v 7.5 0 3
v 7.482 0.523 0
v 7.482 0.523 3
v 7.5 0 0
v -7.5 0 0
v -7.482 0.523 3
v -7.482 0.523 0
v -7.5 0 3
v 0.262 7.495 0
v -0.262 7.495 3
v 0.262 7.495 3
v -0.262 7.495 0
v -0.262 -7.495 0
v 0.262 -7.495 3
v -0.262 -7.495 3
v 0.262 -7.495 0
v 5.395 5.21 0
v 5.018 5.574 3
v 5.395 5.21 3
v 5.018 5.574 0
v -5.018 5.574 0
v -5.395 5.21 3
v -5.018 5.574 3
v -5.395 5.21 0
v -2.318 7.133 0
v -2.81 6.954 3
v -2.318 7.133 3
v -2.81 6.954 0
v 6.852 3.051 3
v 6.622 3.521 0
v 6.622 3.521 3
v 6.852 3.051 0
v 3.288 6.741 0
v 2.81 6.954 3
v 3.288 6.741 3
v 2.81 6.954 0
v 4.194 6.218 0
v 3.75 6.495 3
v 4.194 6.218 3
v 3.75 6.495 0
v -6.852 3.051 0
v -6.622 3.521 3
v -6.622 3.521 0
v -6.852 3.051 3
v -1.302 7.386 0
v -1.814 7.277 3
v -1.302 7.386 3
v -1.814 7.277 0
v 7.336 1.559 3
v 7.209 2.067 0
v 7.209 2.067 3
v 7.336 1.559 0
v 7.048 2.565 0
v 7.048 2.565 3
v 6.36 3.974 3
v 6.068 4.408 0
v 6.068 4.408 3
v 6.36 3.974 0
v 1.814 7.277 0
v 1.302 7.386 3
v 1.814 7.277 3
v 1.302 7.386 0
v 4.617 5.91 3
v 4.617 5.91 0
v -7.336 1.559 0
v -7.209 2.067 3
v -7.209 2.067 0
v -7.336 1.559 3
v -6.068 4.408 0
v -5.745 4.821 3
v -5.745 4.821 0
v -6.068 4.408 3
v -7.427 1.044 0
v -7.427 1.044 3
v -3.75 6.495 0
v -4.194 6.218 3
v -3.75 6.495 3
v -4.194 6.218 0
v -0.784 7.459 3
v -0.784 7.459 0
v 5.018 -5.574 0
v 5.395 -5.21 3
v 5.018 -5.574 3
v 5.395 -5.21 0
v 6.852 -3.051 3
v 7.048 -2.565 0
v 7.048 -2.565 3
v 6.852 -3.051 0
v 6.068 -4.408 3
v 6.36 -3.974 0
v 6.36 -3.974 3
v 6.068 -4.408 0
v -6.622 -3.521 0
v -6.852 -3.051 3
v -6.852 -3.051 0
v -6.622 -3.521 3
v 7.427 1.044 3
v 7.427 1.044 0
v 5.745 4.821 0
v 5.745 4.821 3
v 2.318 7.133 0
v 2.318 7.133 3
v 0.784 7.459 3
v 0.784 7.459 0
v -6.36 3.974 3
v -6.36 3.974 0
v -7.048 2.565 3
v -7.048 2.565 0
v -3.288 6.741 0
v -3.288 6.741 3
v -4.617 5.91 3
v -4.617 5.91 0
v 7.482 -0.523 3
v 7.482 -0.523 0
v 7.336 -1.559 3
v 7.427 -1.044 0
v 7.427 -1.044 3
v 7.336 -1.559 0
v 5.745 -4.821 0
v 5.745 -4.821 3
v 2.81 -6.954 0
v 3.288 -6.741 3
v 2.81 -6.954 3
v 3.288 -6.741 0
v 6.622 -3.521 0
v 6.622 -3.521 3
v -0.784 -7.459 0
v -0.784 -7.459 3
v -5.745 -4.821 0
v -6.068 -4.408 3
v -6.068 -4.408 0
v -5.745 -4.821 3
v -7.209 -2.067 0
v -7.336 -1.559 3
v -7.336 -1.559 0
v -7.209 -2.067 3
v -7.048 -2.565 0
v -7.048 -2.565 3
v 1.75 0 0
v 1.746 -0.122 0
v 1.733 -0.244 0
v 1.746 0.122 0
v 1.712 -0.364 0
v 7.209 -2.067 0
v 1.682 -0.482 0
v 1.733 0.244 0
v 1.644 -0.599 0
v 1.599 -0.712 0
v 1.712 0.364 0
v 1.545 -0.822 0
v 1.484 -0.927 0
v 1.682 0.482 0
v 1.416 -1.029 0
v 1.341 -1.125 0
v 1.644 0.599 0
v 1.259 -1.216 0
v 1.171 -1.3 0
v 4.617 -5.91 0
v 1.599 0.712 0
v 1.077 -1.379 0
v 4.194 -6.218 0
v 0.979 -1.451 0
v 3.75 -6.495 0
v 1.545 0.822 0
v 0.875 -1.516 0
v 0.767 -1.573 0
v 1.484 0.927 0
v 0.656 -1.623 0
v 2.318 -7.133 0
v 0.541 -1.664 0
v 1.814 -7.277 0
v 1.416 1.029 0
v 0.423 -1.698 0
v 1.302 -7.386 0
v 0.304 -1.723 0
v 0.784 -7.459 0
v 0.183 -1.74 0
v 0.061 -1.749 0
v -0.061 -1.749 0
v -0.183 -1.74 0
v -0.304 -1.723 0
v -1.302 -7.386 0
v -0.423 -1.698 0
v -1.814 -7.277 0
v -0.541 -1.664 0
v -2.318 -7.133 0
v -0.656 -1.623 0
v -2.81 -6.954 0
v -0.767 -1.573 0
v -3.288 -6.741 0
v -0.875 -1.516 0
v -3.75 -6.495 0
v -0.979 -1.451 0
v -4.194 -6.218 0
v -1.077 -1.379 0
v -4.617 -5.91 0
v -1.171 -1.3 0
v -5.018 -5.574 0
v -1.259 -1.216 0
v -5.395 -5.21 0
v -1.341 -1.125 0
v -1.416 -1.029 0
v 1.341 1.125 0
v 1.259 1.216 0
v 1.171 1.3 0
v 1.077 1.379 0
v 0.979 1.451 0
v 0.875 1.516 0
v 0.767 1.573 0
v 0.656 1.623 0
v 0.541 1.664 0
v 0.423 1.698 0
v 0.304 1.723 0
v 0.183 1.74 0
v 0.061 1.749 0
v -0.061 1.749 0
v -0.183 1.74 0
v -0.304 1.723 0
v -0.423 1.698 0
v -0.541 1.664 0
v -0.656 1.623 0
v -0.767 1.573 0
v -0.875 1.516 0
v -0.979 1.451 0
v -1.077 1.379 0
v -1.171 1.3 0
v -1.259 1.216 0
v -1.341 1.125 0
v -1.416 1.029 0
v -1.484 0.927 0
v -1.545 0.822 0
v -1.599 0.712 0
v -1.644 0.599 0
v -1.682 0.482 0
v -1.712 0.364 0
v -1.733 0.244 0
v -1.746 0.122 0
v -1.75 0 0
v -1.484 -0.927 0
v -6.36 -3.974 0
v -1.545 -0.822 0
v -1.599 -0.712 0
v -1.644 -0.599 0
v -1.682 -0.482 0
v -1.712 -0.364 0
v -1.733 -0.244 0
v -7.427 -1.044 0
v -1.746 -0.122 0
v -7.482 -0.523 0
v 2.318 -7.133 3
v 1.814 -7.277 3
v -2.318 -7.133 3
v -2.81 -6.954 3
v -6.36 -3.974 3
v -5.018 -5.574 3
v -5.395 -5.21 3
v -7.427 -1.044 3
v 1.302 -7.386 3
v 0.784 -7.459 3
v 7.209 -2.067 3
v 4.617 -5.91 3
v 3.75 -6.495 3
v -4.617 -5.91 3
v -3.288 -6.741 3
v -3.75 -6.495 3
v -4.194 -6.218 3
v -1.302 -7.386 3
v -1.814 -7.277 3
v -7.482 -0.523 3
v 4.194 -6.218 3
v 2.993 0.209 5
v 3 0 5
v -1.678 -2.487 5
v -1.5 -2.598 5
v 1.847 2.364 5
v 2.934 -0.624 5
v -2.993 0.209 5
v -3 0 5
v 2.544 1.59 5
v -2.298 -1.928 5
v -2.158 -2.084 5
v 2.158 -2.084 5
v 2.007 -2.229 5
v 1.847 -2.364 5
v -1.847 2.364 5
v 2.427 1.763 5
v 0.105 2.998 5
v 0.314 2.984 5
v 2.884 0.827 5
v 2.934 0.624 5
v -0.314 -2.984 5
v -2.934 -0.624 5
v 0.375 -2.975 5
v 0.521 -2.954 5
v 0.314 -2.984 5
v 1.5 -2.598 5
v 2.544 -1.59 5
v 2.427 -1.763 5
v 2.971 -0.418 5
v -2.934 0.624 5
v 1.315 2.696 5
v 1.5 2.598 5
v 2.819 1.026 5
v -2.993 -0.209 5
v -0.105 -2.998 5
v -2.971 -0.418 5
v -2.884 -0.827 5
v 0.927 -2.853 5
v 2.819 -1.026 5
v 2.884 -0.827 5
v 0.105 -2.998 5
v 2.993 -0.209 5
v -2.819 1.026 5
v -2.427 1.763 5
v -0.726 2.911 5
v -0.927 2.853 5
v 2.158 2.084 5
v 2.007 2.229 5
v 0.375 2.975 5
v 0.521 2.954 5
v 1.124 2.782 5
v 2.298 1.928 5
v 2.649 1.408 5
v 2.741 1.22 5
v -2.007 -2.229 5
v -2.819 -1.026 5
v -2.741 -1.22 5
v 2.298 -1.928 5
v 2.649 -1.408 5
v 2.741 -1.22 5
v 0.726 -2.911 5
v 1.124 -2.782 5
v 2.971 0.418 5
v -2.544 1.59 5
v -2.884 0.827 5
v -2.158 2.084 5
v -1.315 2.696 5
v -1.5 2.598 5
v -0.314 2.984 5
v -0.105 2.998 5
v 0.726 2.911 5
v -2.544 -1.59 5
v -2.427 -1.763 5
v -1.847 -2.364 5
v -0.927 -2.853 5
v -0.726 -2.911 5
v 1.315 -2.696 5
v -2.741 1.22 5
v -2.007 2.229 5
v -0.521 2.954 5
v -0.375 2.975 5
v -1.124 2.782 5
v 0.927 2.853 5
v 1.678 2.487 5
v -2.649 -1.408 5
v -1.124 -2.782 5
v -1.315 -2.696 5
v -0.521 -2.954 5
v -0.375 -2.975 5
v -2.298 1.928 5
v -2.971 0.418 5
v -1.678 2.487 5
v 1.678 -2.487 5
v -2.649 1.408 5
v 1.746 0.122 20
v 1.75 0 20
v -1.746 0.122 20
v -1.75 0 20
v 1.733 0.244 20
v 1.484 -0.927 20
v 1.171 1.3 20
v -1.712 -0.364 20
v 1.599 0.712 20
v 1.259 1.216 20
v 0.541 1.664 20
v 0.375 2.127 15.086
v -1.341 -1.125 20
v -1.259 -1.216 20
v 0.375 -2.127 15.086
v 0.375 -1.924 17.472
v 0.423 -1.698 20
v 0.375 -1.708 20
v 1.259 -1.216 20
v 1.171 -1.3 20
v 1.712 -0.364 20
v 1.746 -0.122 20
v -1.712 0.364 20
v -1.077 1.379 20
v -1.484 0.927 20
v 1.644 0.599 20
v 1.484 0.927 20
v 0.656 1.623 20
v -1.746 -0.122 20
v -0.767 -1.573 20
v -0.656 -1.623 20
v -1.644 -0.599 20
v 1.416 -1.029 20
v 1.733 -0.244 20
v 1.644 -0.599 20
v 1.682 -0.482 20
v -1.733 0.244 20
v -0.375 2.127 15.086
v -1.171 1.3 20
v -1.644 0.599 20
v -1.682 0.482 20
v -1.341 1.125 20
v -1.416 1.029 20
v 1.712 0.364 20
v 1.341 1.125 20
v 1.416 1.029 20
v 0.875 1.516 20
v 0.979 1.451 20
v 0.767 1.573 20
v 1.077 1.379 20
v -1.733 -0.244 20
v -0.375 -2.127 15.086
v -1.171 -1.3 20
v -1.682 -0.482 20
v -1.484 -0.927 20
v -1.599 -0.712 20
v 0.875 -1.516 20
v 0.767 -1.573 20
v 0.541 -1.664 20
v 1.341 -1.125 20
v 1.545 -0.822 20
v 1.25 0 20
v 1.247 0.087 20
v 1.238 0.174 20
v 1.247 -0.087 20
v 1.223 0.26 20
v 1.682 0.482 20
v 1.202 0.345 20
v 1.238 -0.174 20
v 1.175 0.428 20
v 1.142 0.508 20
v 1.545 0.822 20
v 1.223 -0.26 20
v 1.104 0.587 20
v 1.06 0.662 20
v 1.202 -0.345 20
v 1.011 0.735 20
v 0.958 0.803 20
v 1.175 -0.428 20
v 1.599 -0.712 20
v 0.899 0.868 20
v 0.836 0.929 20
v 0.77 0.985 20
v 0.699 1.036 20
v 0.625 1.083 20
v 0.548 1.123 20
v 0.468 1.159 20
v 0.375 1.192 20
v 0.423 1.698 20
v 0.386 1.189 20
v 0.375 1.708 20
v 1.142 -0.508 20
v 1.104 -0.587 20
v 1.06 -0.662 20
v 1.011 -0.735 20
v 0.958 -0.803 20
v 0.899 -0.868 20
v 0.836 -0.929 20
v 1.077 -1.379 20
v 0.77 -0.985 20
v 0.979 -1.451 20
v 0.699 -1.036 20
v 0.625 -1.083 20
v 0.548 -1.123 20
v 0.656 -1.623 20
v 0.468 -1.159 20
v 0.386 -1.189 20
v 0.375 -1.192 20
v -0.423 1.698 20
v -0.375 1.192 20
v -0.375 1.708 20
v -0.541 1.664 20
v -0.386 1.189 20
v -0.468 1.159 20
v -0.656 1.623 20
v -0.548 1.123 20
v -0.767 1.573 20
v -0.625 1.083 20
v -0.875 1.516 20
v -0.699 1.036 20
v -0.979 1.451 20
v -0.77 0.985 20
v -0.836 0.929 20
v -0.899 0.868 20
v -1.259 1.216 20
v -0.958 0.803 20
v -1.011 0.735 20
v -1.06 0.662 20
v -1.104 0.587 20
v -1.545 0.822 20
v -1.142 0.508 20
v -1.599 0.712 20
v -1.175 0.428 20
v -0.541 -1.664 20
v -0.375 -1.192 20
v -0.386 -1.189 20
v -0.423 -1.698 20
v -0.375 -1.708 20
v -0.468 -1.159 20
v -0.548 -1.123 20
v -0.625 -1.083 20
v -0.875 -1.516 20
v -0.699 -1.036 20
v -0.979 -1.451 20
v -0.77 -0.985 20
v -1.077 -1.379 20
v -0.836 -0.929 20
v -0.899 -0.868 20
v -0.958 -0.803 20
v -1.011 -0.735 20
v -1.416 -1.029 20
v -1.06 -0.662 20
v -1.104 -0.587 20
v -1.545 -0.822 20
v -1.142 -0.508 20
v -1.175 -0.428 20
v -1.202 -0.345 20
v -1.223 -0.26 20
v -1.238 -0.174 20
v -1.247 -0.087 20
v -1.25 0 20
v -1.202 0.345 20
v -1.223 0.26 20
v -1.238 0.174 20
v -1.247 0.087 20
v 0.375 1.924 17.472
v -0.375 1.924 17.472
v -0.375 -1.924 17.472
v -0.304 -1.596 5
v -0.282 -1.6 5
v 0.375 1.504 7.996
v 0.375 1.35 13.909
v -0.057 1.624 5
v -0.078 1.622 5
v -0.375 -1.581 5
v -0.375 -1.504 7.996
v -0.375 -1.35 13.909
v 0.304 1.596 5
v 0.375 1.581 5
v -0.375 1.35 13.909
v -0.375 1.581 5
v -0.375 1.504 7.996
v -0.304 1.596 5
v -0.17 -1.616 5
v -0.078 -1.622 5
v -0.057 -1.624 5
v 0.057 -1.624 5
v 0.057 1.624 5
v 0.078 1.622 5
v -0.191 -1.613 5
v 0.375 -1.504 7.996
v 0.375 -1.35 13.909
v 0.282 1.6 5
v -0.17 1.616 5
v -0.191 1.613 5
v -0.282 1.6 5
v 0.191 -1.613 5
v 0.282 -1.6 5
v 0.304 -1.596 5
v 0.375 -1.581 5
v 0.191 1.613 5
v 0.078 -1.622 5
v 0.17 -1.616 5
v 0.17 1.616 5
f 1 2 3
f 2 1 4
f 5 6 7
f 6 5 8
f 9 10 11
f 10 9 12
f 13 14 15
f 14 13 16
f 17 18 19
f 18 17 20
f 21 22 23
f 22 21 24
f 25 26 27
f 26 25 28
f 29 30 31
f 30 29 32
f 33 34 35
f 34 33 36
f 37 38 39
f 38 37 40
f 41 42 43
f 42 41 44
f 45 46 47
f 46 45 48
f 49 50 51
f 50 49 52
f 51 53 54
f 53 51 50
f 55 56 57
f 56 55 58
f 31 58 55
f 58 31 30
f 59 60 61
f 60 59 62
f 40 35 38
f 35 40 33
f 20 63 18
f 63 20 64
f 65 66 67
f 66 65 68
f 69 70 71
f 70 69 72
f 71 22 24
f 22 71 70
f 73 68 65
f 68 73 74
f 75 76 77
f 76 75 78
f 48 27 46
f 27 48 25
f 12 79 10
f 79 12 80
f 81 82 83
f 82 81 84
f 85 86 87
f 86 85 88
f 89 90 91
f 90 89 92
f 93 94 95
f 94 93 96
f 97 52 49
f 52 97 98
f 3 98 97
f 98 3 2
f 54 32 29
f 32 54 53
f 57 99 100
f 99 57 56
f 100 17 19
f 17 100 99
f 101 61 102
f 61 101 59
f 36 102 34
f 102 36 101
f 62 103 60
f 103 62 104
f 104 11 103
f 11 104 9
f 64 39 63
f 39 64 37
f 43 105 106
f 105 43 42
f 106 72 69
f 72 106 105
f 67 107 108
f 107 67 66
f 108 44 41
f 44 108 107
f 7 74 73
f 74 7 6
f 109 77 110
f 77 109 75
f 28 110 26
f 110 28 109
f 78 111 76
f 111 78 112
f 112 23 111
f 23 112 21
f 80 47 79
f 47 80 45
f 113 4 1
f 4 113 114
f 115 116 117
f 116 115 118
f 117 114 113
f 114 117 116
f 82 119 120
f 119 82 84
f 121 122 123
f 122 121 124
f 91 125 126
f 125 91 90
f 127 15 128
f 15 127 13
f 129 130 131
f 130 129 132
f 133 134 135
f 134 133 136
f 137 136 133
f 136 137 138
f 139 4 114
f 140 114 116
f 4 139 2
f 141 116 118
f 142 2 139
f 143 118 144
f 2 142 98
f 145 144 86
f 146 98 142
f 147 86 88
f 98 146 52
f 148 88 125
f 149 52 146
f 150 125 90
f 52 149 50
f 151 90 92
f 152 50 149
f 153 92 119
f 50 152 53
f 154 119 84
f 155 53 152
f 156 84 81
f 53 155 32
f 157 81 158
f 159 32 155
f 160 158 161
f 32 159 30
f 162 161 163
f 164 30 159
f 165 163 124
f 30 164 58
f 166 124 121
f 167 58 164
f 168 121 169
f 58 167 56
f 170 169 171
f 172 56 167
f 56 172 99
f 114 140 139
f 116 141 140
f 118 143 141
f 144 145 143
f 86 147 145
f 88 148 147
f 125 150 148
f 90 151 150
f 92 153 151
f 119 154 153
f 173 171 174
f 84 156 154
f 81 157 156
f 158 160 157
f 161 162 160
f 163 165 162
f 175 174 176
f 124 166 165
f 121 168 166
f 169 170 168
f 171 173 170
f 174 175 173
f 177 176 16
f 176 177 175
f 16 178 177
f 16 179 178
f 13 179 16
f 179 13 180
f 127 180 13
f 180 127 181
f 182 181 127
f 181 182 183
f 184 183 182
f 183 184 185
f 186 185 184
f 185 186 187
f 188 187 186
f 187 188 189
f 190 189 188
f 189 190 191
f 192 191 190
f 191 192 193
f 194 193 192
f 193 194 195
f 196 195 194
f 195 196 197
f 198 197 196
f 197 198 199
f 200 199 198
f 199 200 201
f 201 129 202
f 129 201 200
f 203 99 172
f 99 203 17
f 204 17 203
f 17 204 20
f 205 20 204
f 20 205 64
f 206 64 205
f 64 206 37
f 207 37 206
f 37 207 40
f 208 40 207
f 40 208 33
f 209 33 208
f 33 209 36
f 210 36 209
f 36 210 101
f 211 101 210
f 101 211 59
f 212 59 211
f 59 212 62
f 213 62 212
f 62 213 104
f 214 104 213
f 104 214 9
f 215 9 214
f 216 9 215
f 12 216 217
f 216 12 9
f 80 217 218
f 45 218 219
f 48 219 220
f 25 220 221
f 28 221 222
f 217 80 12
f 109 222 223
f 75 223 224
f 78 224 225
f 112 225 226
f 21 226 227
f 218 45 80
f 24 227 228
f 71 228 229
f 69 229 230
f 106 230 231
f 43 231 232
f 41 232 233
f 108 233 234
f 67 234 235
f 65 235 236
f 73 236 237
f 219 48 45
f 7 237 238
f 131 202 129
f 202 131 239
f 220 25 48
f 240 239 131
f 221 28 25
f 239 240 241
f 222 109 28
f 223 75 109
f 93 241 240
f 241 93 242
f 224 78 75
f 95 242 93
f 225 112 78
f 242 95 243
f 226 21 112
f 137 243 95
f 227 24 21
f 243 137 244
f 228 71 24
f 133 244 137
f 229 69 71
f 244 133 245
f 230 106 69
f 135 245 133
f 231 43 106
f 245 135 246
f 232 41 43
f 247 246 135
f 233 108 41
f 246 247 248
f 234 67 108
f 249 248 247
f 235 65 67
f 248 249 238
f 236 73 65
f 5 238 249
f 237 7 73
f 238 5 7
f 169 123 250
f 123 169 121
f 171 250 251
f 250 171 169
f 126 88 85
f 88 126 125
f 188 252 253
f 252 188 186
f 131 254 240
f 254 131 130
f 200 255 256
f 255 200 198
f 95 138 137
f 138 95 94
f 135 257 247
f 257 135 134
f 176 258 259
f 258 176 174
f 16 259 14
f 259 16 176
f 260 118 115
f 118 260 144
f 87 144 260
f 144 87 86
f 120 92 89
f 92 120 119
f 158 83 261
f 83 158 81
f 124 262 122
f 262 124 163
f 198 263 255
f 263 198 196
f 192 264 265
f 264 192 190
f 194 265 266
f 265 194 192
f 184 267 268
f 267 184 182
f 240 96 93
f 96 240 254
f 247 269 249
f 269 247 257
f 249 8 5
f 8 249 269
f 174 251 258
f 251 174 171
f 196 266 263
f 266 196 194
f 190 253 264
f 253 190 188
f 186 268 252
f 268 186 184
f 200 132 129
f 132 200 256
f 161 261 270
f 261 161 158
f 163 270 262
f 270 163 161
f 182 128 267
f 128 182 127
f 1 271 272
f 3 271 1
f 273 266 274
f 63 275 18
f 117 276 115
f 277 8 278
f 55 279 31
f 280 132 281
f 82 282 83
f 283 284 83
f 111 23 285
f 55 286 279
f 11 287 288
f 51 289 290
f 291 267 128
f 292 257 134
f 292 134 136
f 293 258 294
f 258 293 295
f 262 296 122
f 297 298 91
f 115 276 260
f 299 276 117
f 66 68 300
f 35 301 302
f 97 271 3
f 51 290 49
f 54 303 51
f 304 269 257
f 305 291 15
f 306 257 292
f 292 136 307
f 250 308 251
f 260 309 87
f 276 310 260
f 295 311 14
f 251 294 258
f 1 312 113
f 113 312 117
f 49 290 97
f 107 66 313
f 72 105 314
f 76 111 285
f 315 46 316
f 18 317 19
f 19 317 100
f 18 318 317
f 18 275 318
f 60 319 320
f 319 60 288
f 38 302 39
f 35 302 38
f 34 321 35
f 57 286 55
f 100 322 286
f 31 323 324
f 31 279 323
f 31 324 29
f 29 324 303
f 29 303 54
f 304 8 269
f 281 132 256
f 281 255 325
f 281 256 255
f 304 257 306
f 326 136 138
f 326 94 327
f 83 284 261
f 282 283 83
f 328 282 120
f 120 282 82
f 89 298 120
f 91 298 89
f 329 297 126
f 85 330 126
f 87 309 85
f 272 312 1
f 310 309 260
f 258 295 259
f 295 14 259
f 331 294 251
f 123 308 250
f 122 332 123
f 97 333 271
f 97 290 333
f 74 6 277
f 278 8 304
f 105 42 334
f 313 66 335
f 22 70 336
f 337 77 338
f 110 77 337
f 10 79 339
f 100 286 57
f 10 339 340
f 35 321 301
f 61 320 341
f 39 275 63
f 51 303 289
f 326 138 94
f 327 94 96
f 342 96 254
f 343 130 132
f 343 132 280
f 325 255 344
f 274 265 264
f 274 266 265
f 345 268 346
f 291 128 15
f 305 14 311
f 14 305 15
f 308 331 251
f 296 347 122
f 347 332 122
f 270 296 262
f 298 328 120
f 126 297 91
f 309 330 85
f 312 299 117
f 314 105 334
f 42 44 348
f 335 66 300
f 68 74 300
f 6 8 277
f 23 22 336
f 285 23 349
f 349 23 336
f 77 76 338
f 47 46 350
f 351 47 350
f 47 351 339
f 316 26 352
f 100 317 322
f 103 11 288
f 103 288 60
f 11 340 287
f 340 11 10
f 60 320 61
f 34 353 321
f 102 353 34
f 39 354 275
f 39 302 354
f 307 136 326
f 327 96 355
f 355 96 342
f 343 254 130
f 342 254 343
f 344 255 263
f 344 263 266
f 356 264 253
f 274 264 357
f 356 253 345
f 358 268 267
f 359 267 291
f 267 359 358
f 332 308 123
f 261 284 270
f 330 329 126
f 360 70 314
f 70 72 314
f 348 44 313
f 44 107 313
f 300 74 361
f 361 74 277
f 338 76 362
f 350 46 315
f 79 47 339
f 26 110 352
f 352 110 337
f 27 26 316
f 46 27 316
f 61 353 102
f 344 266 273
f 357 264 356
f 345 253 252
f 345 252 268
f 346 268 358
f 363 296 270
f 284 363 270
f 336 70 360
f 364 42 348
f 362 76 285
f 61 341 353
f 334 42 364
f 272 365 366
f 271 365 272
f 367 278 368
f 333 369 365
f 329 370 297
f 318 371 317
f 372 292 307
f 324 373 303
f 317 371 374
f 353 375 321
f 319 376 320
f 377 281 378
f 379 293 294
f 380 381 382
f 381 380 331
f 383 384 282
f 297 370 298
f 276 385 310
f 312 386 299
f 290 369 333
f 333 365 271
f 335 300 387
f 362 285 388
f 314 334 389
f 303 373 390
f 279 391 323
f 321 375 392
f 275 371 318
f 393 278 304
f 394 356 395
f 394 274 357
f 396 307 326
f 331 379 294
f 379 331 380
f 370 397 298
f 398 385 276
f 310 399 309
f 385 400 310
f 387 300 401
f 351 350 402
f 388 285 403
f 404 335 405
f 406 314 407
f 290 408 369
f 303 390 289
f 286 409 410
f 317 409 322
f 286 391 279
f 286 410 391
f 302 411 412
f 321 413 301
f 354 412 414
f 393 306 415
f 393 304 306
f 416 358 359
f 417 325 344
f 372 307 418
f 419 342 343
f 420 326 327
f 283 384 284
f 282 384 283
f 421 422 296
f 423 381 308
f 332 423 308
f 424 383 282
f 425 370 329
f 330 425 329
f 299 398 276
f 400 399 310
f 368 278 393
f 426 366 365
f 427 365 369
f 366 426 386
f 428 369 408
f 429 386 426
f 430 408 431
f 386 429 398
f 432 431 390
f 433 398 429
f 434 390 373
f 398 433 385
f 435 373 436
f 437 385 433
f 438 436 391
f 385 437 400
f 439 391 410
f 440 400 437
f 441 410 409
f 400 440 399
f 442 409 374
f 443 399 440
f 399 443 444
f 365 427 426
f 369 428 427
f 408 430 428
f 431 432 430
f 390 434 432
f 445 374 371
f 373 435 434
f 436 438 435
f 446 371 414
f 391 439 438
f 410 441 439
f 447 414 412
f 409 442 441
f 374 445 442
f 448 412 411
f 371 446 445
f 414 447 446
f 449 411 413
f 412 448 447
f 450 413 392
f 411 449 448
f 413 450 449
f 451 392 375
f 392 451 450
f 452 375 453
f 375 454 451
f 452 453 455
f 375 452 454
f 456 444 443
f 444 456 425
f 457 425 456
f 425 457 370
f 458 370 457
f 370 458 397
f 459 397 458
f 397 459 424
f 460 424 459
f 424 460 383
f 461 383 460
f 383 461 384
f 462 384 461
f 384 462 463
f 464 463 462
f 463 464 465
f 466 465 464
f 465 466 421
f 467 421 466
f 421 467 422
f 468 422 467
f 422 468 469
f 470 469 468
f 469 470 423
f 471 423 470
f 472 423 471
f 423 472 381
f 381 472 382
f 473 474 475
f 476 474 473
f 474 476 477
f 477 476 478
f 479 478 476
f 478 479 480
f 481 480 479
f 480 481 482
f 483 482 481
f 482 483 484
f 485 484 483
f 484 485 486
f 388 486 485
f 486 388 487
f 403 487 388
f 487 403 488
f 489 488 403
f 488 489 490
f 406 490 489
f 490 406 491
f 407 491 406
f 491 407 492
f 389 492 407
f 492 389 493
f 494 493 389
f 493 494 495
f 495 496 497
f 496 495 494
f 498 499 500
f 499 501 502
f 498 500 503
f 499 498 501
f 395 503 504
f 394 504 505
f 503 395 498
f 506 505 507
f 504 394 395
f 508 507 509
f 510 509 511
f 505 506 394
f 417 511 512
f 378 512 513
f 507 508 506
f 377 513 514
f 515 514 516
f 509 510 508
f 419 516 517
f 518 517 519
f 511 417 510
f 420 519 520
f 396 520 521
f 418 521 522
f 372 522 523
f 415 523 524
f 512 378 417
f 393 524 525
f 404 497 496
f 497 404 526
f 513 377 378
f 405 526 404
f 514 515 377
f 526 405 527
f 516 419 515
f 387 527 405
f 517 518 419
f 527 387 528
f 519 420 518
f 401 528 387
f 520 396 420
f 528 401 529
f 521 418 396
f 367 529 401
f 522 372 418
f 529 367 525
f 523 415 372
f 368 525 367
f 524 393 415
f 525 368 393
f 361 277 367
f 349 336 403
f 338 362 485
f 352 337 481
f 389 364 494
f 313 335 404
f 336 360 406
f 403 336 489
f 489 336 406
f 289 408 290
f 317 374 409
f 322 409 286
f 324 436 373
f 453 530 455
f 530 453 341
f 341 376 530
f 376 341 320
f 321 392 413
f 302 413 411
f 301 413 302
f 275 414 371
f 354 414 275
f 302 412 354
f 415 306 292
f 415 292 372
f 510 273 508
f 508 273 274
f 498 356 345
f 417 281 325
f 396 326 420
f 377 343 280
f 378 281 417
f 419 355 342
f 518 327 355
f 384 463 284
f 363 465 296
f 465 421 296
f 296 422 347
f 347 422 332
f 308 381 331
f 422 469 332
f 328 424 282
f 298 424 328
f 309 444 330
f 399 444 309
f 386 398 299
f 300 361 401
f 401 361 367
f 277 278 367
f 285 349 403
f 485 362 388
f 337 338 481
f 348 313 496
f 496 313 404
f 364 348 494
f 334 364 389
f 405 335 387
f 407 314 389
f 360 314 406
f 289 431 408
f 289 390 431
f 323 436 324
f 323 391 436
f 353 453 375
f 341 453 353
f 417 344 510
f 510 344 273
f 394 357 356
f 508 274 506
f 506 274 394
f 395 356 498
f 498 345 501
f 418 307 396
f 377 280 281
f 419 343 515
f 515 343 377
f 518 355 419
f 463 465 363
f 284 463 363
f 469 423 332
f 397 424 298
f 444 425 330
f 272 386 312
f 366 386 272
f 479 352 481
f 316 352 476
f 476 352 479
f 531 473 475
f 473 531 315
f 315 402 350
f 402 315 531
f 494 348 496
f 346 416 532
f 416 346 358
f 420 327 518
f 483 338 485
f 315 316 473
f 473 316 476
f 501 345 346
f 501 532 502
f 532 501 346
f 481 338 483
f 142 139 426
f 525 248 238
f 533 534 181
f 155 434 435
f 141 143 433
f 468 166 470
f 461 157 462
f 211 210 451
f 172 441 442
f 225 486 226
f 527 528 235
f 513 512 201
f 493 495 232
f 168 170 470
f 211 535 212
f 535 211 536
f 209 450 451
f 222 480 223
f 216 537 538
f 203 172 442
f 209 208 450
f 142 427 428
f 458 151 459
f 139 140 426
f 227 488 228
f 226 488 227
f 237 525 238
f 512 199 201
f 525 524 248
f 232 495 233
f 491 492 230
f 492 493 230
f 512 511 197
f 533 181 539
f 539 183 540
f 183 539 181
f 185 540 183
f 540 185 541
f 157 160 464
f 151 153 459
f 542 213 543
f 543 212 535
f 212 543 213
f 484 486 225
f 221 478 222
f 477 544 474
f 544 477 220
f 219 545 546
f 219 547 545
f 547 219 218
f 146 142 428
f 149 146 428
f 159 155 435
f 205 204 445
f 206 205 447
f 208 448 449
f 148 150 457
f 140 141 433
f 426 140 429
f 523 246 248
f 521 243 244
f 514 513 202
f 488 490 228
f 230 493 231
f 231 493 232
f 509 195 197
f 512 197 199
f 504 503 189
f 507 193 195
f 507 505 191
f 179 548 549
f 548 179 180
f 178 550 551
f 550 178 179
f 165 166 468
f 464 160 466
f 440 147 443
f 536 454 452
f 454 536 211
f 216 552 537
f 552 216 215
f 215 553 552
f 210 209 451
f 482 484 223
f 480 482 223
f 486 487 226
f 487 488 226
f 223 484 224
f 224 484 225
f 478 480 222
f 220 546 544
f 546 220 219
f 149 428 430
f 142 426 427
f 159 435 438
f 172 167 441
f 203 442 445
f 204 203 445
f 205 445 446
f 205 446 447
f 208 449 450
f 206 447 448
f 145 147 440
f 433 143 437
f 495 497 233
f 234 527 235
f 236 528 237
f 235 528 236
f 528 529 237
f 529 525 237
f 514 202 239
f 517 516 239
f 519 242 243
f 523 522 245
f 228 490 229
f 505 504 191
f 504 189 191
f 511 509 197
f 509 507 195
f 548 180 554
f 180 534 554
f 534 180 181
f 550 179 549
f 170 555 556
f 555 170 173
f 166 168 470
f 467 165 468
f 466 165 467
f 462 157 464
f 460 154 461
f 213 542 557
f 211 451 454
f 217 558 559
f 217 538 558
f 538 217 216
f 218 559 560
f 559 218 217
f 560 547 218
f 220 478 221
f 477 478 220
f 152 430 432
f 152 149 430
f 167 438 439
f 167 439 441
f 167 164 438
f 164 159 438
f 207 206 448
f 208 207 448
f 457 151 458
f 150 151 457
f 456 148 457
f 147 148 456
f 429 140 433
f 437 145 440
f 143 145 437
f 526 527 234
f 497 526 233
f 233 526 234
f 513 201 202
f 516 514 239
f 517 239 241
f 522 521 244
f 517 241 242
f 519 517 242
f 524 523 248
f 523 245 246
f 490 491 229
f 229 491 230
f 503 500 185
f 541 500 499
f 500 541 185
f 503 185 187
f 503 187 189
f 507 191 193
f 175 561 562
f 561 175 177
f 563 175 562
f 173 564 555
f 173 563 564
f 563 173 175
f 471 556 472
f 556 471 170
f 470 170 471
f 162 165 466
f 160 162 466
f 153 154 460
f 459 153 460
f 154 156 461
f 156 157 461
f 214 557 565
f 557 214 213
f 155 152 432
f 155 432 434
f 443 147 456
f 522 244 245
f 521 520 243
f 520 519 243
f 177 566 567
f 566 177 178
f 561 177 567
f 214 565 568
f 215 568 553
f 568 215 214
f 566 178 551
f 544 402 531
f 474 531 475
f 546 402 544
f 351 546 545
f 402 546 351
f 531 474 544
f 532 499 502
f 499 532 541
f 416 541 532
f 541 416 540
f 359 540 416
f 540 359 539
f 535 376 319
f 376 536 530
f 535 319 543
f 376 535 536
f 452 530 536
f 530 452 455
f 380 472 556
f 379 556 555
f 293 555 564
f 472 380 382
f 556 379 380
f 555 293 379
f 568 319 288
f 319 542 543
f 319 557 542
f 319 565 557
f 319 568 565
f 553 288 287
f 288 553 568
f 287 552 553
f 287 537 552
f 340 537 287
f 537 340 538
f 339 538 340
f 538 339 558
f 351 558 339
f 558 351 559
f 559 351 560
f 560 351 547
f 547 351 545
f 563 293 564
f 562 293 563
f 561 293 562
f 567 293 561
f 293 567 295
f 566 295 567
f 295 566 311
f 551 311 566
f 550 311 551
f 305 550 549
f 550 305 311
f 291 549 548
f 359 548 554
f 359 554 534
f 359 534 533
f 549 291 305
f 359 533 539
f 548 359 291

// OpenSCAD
$fn = 90;
difference() {
    union() {
        cylinder(d = 15, h = 3);
        translate([0, 0, 3]) cylinder(d1 = 15, d2 = 6, h = 2);
        translate([0, 0, 5]) cylinder(d1 = 6, d2 = 3.5, h = 15);
    };
    cylinder(d1 = 3.5, d2 = 2.5, h = 20);
    translate([0, 0, 5 + 7.5]) cube([0.75, 8, 15], center = true);
}
